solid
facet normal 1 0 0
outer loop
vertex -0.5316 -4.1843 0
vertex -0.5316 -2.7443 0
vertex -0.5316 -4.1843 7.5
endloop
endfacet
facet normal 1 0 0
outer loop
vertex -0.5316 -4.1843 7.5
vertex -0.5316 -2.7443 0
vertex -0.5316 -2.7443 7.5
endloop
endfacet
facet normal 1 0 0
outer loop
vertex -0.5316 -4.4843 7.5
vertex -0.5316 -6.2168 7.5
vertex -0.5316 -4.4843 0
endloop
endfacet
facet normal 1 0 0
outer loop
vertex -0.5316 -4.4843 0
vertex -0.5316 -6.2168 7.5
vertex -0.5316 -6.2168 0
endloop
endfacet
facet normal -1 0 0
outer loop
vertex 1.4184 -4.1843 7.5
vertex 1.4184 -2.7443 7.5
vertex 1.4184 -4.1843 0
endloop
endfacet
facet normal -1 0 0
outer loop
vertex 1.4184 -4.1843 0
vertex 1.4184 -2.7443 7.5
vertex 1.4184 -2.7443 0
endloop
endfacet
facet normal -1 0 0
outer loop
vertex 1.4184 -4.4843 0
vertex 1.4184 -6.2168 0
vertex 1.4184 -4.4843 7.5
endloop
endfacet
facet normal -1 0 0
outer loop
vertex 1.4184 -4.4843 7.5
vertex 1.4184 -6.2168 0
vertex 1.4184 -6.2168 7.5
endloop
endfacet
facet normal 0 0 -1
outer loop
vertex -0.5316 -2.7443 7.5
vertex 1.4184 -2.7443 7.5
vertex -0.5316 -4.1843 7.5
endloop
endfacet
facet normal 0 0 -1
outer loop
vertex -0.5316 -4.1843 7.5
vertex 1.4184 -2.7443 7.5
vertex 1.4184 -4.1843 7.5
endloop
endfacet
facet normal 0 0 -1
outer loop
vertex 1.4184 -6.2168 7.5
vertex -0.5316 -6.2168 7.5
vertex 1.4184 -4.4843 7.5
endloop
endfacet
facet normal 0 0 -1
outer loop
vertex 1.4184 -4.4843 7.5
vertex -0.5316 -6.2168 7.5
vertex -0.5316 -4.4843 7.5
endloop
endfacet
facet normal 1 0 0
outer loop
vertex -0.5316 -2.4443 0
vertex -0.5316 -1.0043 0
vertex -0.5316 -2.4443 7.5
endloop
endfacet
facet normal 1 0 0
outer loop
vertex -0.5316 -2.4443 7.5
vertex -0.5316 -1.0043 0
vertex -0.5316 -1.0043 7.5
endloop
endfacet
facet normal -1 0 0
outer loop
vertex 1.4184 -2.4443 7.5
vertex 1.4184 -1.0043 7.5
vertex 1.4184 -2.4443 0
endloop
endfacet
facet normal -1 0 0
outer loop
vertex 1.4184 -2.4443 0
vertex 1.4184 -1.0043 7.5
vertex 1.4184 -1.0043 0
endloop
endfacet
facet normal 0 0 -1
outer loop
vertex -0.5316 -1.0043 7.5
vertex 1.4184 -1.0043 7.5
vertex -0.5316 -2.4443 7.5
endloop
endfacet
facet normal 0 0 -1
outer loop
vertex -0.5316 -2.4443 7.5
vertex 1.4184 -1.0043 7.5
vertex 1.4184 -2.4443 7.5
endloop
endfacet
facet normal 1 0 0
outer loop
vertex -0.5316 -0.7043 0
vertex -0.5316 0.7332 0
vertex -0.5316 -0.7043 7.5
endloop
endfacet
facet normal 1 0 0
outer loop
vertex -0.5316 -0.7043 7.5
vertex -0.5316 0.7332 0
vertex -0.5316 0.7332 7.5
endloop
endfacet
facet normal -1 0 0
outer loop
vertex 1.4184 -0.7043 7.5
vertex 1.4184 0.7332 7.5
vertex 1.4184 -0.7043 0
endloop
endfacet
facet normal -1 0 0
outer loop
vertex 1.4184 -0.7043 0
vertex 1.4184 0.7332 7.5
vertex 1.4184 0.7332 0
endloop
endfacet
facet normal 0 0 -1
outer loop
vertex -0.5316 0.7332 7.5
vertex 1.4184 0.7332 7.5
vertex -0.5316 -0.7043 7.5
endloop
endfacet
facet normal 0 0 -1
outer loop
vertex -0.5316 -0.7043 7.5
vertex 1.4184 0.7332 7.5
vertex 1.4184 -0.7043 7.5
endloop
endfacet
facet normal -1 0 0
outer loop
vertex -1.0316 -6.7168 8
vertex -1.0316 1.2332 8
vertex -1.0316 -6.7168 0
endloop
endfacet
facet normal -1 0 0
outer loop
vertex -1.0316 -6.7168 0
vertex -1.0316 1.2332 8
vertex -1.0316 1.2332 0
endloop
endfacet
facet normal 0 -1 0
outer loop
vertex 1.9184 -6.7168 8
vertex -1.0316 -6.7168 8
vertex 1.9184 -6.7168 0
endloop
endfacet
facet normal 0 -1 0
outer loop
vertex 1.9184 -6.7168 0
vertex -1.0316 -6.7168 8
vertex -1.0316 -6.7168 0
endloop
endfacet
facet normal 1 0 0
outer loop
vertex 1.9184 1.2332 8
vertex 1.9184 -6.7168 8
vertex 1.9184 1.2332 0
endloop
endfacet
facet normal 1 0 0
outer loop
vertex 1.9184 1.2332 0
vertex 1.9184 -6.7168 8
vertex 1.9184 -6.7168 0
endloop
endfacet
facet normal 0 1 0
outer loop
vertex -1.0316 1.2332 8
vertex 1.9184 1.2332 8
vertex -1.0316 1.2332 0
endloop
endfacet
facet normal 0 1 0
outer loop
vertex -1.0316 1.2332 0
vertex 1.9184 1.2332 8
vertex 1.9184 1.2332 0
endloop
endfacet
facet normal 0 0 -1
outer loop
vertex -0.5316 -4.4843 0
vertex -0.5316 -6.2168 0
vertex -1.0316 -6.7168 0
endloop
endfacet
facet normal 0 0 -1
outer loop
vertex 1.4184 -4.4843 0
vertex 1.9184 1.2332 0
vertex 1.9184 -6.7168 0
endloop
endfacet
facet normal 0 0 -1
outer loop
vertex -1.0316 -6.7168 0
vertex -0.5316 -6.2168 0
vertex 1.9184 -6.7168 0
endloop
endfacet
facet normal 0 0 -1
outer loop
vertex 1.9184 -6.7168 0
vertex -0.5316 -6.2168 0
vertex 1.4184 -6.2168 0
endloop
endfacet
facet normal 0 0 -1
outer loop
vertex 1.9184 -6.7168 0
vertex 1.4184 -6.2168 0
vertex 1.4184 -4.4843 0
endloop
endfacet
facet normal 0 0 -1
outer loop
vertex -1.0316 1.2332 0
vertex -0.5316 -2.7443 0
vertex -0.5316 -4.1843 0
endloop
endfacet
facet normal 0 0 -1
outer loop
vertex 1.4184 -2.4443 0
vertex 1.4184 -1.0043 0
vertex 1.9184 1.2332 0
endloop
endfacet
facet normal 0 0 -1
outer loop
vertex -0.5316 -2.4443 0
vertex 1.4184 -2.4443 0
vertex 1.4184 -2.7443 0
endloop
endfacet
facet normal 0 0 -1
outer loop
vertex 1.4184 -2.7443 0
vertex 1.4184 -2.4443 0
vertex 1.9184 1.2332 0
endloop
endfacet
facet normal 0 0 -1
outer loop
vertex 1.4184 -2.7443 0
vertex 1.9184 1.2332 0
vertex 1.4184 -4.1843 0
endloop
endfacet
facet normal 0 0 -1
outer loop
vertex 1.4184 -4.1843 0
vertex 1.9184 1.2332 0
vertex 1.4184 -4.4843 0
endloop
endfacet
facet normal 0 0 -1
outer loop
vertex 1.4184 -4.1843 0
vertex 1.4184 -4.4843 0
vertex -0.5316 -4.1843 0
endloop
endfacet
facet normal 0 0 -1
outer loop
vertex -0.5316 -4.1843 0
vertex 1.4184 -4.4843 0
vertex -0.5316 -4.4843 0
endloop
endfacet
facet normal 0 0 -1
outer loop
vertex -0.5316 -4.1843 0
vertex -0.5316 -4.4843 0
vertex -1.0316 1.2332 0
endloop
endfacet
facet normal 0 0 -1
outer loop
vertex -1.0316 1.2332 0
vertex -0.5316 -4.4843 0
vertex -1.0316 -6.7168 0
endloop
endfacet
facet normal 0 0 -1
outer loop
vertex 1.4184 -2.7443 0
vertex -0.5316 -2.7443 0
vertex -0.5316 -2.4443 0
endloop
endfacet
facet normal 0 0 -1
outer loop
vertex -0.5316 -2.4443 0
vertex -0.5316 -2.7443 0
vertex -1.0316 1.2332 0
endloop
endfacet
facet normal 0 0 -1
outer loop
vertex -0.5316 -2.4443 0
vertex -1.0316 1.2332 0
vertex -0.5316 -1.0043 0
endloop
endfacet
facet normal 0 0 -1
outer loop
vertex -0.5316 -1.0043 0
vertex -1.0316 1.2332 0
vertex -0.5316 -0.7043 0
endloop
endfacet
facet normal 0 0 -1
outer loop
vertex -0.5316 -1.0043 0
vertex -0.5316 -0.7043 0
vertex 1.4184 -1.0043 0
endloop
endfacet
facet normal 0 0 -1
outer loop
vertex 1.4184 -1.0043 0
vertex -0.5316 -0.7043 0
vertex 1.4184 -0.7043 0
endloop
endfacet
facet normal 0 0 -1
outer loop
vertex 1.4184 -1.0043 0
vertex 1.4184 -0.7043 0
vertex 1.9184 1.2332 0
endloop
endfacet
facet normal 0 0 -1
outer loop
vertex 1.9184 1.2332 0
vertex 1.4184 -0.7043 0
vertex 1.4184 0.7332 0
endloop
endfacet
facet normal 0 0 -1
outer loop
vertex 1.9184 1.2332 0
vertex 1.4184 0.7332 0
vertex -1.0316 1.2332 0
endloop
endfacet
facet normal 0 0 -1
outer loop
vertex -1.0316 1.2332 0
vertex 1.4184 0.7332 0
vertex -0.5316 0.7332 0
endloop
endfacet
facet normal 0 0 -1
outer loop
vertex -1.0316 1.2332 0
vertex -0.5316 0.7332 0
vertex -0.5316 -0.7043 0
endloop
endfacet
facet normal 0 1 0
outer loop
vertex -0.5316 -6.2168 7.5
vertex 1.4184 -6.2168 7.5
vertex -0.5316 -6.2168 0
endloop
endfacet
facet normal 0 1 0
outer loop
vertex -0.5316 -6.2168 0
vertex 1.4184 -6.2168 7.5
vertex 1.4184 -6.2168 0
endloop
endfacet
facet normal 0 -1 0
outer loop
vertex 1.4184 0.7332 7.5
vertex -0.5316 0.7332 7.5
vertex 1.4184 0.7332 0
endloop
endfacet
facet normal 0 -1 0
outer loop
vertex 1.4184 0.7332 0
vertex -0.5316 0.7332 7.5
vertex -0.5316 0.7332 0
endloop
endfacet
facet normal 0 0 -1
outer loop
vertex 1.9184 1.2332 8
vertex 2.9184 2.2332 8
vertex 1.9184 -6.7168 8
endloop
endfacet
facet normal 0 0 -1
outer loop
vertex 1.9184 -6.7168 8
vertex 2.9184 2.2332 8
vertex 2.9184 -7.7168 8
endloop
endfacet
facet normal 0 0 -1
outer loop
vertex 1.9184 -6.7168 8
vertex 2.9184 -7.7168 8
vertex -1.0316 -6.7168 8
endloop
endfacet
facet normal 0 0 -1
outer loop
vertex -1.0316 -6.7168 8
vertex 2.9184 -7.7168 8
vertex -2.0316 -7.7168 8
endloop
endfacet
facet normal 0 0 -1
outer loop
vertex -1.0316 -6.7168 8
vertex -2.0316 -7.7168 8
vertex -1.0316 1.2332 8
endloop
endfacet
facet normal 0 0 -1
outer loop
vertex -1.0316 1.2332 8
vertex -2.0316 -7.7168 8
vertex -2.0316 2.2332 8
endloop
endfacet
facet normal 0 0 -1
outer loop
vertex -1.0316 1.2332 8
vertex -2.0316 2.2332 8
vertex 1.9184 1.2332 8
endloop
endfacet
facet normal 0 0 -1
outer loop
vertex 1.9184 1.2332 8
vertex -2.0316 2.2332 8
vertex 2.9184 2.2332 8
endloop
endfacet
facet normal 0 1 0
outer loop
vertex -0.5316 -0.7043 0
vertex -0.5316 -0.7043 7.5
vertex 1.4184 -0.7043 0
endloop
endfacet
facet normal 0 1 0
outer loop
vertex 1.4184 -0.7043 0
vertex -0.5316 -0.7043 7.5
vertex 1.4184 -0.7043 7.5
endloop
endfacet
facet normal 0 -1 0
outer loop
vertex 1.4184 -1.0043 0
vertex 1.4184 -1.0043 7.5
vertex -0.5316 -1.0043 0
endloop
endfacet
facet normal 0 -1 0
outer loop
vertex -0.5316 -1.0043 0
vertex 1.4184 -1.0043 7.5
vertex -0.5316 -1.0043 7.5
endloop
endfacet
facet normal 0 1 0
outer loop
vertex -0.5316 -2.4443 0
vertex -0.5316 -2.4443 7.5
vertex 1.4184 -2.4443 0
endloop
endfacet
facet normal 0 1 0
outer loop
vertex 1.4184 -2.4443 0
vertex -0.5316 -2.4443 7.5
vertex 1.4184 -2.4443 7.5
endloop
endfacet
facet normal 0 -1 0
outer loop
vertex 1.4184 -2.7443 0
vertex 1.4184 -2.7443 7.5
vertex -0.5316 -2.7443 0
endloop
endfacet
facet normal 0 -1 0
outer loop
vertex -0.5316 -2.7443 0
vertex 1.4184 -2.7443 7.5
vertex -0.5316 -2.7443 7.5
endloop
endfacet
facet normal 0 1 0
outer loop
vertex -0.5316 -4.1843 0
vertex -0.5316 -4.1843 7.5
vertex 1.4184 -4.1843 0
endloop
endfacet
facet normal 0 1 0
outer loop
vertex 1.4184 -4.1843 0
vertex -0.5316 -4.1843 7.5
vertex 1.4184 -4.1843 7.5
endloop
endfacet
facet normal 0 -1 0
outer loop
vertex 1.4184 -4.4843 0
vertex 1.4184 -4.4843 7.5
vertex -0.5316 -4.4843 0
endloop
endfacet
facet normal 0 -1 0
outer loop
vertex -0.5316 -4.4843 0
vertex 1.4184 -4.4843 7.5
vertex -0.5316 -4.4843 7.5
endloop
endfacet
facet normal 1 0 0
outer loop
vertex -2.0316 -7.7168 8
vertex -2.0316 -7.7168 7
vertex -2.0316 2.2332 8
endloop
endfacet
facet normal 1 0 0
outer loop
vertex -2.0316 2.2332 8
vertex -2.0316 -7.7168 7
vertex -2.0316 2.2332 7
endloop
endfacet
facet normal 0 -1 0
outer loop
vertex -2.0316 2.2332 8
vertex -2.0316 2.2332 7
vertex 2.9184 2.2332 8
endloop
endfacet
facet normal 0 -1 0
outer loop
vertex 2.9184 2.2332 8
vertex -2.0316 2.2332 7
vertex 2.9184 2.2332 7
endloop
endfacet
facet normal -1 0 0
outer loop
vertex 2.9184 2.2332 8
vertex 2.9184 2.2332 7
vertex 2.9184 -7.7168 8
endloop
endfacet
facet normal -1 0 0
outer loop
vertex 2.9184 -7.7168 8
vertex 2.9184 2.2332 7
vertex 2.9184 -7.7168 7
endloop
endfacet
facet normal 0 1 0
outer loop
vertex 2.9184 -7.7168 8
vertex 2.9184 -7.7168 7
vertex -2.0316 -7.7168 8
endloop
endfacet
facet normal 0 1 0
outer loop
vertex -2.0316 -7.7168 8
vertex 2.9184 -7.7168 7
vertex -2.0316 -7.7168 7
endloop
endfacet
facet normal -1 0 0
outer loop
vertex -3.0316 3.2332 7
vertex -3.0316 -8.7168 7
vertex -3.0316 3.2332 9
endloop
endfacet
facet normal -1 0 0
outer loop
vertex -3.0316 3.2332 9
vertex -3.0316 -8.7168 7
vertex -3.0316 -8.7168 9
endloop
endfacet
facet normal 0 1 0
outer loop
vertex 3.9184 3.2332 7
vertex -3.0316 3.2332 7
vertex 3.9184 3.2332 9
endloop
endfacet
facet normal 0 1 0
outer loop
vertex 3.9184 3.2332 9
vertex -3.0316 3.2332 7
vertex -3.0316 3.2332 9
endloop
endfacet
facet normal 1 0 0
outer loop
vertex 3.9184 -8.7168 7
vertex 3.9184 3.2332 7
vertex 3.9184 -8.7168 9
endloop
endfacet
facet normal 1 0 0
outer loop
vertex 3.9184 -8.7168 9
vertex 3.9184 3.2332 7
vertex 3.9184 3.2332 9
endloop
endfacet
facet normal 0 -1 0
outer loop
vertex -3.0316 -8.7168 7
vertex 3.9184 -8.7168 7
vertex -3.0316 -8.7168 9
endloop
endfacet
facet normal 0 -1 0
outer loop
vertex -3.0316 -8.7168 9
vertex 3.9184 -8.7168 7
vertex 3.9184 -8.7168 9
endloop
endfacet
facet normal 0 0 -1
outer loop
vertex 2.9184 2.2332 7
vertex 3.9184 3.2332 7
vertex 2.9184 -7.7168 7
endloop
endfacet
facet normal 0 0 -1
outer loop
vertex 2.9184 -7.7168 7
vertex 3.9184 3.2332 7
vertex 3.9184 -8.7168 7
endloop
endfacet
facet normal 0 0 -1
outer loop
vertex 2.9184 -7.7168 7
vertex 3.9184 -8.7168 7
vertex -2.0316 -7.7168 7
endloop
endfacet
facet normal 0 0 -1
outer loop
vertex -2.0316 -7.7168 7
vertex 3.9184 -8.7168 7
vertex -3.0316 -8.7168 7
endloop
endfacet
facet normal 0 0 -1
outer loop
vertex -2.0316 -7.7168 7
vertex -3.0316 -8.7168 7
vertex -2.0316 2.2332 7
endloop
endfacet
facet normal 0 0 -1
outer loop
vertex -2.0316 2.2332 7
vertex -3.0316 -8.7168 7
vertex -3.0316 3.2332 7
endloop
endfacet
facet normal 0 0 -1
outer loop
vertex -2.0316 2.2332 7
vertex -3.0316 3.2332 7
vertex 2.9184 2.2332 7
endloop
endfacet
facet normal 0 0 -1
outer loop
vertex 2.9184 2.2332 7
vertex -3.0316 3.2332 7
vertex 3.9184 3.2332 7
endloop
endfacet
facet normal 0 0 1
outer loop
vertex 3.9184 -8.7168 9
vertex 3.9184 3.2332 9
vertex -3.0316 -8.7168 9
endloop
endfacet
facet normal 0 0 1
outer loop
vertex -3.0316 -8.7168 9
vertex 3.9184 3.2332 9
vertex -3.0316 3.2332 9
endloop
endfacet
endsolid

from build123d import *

# Parameters (mm, degrees)
SKETCH1_W           = 2.95
SKETCH1_H           = 7.95
BOSS_EXTRUDE1_DEPTH = 8
SHELL1_T            = -0.5
SKETCH2_W           = 4.95
SKETCH2_H           = 9.95
BOSS_EXTRUDE2_DEPTH = 1
SKETCH3_W           = 1.95
SKETCH3_H           = 0.3
BOSS_EXTRUDE3_DEPTH = 7.5
SKETCH4_W           = 6.95
SKETCH4_H           = 11.95
SKETCH4_W_2         = 4.95
SKETCH4_H_2         = 9.95
BOSS_EXTRUDE5_DEPTH = 2


with BuildPart() as part:
    # Sketch1 → Boss-Extrude1 (new body)
    with BuildSketch(Plane.XY):
        with Locations((0.443379447, -2.741798419)):
            Rectangle(SKETCH1_W, SKETCH1_H)
    extrude(amount=BOSS_EXTRUDE1_DEPTH)

    # Shell1
    shell1_openings = [part.faces().sort_by_distance(p)[0] for p in [
        (0.443379447, -2.741798419, 0),
    ]]
    offset(amount=SHELL1_T, openings=shell1_openings, kind=Kind.INTERSECTION)

    # Sketch2 → Boss-Extrude2 (add)
    with BuildSketch(Plane.XY.offset(8)):
        with Locations((0.443379447, -2.741798419)):
            Rectangle(SKETCH2_W, SKETCH2_H)
    extrude(amount=BOSS_EXTRUDE2_DEPTH)

    # Sketch3 → Boss-Extrude3 (add)
    with BuildSketch(Plane(origin=(0, 0, 7.5), x_dir=(-1, 0, 0), z_dir=(0, 0, -1))):
        with Locations((-0.443379447, -0.854298419)):
            Rectangle(SKETCH3_W, SKETCH3_H)
        with Locations((-0.443379447, -2.594298419)):
            Rectangle(SKETCH3_W, SKETCH3_H)
        with Locations((-0.443379447, -4.334298419)):
            Rectangle(SKETCH3_W, SKETCH3_H)
    extrude(amount=BOSS_EXTRUDE3_DEPTH)

    # Sketch4 → Boss-Extrude5 (add)
    with BuildSketch(Plane.XY.offset(9)):
        with Locations((0.443379447, -2.741798419)):
            Rectangle(SKETCH4_W, SKETCH4_H)
        with Locations((0.443379447, -2.741798419)):
            Rectangle(SKETCH4_W_2, SKETCH4_H_2, mode=Mode.SUBTRACT)
    extrude(amount=-BOSS_EXTRUDE5_DEPTH)


solid = part.part
